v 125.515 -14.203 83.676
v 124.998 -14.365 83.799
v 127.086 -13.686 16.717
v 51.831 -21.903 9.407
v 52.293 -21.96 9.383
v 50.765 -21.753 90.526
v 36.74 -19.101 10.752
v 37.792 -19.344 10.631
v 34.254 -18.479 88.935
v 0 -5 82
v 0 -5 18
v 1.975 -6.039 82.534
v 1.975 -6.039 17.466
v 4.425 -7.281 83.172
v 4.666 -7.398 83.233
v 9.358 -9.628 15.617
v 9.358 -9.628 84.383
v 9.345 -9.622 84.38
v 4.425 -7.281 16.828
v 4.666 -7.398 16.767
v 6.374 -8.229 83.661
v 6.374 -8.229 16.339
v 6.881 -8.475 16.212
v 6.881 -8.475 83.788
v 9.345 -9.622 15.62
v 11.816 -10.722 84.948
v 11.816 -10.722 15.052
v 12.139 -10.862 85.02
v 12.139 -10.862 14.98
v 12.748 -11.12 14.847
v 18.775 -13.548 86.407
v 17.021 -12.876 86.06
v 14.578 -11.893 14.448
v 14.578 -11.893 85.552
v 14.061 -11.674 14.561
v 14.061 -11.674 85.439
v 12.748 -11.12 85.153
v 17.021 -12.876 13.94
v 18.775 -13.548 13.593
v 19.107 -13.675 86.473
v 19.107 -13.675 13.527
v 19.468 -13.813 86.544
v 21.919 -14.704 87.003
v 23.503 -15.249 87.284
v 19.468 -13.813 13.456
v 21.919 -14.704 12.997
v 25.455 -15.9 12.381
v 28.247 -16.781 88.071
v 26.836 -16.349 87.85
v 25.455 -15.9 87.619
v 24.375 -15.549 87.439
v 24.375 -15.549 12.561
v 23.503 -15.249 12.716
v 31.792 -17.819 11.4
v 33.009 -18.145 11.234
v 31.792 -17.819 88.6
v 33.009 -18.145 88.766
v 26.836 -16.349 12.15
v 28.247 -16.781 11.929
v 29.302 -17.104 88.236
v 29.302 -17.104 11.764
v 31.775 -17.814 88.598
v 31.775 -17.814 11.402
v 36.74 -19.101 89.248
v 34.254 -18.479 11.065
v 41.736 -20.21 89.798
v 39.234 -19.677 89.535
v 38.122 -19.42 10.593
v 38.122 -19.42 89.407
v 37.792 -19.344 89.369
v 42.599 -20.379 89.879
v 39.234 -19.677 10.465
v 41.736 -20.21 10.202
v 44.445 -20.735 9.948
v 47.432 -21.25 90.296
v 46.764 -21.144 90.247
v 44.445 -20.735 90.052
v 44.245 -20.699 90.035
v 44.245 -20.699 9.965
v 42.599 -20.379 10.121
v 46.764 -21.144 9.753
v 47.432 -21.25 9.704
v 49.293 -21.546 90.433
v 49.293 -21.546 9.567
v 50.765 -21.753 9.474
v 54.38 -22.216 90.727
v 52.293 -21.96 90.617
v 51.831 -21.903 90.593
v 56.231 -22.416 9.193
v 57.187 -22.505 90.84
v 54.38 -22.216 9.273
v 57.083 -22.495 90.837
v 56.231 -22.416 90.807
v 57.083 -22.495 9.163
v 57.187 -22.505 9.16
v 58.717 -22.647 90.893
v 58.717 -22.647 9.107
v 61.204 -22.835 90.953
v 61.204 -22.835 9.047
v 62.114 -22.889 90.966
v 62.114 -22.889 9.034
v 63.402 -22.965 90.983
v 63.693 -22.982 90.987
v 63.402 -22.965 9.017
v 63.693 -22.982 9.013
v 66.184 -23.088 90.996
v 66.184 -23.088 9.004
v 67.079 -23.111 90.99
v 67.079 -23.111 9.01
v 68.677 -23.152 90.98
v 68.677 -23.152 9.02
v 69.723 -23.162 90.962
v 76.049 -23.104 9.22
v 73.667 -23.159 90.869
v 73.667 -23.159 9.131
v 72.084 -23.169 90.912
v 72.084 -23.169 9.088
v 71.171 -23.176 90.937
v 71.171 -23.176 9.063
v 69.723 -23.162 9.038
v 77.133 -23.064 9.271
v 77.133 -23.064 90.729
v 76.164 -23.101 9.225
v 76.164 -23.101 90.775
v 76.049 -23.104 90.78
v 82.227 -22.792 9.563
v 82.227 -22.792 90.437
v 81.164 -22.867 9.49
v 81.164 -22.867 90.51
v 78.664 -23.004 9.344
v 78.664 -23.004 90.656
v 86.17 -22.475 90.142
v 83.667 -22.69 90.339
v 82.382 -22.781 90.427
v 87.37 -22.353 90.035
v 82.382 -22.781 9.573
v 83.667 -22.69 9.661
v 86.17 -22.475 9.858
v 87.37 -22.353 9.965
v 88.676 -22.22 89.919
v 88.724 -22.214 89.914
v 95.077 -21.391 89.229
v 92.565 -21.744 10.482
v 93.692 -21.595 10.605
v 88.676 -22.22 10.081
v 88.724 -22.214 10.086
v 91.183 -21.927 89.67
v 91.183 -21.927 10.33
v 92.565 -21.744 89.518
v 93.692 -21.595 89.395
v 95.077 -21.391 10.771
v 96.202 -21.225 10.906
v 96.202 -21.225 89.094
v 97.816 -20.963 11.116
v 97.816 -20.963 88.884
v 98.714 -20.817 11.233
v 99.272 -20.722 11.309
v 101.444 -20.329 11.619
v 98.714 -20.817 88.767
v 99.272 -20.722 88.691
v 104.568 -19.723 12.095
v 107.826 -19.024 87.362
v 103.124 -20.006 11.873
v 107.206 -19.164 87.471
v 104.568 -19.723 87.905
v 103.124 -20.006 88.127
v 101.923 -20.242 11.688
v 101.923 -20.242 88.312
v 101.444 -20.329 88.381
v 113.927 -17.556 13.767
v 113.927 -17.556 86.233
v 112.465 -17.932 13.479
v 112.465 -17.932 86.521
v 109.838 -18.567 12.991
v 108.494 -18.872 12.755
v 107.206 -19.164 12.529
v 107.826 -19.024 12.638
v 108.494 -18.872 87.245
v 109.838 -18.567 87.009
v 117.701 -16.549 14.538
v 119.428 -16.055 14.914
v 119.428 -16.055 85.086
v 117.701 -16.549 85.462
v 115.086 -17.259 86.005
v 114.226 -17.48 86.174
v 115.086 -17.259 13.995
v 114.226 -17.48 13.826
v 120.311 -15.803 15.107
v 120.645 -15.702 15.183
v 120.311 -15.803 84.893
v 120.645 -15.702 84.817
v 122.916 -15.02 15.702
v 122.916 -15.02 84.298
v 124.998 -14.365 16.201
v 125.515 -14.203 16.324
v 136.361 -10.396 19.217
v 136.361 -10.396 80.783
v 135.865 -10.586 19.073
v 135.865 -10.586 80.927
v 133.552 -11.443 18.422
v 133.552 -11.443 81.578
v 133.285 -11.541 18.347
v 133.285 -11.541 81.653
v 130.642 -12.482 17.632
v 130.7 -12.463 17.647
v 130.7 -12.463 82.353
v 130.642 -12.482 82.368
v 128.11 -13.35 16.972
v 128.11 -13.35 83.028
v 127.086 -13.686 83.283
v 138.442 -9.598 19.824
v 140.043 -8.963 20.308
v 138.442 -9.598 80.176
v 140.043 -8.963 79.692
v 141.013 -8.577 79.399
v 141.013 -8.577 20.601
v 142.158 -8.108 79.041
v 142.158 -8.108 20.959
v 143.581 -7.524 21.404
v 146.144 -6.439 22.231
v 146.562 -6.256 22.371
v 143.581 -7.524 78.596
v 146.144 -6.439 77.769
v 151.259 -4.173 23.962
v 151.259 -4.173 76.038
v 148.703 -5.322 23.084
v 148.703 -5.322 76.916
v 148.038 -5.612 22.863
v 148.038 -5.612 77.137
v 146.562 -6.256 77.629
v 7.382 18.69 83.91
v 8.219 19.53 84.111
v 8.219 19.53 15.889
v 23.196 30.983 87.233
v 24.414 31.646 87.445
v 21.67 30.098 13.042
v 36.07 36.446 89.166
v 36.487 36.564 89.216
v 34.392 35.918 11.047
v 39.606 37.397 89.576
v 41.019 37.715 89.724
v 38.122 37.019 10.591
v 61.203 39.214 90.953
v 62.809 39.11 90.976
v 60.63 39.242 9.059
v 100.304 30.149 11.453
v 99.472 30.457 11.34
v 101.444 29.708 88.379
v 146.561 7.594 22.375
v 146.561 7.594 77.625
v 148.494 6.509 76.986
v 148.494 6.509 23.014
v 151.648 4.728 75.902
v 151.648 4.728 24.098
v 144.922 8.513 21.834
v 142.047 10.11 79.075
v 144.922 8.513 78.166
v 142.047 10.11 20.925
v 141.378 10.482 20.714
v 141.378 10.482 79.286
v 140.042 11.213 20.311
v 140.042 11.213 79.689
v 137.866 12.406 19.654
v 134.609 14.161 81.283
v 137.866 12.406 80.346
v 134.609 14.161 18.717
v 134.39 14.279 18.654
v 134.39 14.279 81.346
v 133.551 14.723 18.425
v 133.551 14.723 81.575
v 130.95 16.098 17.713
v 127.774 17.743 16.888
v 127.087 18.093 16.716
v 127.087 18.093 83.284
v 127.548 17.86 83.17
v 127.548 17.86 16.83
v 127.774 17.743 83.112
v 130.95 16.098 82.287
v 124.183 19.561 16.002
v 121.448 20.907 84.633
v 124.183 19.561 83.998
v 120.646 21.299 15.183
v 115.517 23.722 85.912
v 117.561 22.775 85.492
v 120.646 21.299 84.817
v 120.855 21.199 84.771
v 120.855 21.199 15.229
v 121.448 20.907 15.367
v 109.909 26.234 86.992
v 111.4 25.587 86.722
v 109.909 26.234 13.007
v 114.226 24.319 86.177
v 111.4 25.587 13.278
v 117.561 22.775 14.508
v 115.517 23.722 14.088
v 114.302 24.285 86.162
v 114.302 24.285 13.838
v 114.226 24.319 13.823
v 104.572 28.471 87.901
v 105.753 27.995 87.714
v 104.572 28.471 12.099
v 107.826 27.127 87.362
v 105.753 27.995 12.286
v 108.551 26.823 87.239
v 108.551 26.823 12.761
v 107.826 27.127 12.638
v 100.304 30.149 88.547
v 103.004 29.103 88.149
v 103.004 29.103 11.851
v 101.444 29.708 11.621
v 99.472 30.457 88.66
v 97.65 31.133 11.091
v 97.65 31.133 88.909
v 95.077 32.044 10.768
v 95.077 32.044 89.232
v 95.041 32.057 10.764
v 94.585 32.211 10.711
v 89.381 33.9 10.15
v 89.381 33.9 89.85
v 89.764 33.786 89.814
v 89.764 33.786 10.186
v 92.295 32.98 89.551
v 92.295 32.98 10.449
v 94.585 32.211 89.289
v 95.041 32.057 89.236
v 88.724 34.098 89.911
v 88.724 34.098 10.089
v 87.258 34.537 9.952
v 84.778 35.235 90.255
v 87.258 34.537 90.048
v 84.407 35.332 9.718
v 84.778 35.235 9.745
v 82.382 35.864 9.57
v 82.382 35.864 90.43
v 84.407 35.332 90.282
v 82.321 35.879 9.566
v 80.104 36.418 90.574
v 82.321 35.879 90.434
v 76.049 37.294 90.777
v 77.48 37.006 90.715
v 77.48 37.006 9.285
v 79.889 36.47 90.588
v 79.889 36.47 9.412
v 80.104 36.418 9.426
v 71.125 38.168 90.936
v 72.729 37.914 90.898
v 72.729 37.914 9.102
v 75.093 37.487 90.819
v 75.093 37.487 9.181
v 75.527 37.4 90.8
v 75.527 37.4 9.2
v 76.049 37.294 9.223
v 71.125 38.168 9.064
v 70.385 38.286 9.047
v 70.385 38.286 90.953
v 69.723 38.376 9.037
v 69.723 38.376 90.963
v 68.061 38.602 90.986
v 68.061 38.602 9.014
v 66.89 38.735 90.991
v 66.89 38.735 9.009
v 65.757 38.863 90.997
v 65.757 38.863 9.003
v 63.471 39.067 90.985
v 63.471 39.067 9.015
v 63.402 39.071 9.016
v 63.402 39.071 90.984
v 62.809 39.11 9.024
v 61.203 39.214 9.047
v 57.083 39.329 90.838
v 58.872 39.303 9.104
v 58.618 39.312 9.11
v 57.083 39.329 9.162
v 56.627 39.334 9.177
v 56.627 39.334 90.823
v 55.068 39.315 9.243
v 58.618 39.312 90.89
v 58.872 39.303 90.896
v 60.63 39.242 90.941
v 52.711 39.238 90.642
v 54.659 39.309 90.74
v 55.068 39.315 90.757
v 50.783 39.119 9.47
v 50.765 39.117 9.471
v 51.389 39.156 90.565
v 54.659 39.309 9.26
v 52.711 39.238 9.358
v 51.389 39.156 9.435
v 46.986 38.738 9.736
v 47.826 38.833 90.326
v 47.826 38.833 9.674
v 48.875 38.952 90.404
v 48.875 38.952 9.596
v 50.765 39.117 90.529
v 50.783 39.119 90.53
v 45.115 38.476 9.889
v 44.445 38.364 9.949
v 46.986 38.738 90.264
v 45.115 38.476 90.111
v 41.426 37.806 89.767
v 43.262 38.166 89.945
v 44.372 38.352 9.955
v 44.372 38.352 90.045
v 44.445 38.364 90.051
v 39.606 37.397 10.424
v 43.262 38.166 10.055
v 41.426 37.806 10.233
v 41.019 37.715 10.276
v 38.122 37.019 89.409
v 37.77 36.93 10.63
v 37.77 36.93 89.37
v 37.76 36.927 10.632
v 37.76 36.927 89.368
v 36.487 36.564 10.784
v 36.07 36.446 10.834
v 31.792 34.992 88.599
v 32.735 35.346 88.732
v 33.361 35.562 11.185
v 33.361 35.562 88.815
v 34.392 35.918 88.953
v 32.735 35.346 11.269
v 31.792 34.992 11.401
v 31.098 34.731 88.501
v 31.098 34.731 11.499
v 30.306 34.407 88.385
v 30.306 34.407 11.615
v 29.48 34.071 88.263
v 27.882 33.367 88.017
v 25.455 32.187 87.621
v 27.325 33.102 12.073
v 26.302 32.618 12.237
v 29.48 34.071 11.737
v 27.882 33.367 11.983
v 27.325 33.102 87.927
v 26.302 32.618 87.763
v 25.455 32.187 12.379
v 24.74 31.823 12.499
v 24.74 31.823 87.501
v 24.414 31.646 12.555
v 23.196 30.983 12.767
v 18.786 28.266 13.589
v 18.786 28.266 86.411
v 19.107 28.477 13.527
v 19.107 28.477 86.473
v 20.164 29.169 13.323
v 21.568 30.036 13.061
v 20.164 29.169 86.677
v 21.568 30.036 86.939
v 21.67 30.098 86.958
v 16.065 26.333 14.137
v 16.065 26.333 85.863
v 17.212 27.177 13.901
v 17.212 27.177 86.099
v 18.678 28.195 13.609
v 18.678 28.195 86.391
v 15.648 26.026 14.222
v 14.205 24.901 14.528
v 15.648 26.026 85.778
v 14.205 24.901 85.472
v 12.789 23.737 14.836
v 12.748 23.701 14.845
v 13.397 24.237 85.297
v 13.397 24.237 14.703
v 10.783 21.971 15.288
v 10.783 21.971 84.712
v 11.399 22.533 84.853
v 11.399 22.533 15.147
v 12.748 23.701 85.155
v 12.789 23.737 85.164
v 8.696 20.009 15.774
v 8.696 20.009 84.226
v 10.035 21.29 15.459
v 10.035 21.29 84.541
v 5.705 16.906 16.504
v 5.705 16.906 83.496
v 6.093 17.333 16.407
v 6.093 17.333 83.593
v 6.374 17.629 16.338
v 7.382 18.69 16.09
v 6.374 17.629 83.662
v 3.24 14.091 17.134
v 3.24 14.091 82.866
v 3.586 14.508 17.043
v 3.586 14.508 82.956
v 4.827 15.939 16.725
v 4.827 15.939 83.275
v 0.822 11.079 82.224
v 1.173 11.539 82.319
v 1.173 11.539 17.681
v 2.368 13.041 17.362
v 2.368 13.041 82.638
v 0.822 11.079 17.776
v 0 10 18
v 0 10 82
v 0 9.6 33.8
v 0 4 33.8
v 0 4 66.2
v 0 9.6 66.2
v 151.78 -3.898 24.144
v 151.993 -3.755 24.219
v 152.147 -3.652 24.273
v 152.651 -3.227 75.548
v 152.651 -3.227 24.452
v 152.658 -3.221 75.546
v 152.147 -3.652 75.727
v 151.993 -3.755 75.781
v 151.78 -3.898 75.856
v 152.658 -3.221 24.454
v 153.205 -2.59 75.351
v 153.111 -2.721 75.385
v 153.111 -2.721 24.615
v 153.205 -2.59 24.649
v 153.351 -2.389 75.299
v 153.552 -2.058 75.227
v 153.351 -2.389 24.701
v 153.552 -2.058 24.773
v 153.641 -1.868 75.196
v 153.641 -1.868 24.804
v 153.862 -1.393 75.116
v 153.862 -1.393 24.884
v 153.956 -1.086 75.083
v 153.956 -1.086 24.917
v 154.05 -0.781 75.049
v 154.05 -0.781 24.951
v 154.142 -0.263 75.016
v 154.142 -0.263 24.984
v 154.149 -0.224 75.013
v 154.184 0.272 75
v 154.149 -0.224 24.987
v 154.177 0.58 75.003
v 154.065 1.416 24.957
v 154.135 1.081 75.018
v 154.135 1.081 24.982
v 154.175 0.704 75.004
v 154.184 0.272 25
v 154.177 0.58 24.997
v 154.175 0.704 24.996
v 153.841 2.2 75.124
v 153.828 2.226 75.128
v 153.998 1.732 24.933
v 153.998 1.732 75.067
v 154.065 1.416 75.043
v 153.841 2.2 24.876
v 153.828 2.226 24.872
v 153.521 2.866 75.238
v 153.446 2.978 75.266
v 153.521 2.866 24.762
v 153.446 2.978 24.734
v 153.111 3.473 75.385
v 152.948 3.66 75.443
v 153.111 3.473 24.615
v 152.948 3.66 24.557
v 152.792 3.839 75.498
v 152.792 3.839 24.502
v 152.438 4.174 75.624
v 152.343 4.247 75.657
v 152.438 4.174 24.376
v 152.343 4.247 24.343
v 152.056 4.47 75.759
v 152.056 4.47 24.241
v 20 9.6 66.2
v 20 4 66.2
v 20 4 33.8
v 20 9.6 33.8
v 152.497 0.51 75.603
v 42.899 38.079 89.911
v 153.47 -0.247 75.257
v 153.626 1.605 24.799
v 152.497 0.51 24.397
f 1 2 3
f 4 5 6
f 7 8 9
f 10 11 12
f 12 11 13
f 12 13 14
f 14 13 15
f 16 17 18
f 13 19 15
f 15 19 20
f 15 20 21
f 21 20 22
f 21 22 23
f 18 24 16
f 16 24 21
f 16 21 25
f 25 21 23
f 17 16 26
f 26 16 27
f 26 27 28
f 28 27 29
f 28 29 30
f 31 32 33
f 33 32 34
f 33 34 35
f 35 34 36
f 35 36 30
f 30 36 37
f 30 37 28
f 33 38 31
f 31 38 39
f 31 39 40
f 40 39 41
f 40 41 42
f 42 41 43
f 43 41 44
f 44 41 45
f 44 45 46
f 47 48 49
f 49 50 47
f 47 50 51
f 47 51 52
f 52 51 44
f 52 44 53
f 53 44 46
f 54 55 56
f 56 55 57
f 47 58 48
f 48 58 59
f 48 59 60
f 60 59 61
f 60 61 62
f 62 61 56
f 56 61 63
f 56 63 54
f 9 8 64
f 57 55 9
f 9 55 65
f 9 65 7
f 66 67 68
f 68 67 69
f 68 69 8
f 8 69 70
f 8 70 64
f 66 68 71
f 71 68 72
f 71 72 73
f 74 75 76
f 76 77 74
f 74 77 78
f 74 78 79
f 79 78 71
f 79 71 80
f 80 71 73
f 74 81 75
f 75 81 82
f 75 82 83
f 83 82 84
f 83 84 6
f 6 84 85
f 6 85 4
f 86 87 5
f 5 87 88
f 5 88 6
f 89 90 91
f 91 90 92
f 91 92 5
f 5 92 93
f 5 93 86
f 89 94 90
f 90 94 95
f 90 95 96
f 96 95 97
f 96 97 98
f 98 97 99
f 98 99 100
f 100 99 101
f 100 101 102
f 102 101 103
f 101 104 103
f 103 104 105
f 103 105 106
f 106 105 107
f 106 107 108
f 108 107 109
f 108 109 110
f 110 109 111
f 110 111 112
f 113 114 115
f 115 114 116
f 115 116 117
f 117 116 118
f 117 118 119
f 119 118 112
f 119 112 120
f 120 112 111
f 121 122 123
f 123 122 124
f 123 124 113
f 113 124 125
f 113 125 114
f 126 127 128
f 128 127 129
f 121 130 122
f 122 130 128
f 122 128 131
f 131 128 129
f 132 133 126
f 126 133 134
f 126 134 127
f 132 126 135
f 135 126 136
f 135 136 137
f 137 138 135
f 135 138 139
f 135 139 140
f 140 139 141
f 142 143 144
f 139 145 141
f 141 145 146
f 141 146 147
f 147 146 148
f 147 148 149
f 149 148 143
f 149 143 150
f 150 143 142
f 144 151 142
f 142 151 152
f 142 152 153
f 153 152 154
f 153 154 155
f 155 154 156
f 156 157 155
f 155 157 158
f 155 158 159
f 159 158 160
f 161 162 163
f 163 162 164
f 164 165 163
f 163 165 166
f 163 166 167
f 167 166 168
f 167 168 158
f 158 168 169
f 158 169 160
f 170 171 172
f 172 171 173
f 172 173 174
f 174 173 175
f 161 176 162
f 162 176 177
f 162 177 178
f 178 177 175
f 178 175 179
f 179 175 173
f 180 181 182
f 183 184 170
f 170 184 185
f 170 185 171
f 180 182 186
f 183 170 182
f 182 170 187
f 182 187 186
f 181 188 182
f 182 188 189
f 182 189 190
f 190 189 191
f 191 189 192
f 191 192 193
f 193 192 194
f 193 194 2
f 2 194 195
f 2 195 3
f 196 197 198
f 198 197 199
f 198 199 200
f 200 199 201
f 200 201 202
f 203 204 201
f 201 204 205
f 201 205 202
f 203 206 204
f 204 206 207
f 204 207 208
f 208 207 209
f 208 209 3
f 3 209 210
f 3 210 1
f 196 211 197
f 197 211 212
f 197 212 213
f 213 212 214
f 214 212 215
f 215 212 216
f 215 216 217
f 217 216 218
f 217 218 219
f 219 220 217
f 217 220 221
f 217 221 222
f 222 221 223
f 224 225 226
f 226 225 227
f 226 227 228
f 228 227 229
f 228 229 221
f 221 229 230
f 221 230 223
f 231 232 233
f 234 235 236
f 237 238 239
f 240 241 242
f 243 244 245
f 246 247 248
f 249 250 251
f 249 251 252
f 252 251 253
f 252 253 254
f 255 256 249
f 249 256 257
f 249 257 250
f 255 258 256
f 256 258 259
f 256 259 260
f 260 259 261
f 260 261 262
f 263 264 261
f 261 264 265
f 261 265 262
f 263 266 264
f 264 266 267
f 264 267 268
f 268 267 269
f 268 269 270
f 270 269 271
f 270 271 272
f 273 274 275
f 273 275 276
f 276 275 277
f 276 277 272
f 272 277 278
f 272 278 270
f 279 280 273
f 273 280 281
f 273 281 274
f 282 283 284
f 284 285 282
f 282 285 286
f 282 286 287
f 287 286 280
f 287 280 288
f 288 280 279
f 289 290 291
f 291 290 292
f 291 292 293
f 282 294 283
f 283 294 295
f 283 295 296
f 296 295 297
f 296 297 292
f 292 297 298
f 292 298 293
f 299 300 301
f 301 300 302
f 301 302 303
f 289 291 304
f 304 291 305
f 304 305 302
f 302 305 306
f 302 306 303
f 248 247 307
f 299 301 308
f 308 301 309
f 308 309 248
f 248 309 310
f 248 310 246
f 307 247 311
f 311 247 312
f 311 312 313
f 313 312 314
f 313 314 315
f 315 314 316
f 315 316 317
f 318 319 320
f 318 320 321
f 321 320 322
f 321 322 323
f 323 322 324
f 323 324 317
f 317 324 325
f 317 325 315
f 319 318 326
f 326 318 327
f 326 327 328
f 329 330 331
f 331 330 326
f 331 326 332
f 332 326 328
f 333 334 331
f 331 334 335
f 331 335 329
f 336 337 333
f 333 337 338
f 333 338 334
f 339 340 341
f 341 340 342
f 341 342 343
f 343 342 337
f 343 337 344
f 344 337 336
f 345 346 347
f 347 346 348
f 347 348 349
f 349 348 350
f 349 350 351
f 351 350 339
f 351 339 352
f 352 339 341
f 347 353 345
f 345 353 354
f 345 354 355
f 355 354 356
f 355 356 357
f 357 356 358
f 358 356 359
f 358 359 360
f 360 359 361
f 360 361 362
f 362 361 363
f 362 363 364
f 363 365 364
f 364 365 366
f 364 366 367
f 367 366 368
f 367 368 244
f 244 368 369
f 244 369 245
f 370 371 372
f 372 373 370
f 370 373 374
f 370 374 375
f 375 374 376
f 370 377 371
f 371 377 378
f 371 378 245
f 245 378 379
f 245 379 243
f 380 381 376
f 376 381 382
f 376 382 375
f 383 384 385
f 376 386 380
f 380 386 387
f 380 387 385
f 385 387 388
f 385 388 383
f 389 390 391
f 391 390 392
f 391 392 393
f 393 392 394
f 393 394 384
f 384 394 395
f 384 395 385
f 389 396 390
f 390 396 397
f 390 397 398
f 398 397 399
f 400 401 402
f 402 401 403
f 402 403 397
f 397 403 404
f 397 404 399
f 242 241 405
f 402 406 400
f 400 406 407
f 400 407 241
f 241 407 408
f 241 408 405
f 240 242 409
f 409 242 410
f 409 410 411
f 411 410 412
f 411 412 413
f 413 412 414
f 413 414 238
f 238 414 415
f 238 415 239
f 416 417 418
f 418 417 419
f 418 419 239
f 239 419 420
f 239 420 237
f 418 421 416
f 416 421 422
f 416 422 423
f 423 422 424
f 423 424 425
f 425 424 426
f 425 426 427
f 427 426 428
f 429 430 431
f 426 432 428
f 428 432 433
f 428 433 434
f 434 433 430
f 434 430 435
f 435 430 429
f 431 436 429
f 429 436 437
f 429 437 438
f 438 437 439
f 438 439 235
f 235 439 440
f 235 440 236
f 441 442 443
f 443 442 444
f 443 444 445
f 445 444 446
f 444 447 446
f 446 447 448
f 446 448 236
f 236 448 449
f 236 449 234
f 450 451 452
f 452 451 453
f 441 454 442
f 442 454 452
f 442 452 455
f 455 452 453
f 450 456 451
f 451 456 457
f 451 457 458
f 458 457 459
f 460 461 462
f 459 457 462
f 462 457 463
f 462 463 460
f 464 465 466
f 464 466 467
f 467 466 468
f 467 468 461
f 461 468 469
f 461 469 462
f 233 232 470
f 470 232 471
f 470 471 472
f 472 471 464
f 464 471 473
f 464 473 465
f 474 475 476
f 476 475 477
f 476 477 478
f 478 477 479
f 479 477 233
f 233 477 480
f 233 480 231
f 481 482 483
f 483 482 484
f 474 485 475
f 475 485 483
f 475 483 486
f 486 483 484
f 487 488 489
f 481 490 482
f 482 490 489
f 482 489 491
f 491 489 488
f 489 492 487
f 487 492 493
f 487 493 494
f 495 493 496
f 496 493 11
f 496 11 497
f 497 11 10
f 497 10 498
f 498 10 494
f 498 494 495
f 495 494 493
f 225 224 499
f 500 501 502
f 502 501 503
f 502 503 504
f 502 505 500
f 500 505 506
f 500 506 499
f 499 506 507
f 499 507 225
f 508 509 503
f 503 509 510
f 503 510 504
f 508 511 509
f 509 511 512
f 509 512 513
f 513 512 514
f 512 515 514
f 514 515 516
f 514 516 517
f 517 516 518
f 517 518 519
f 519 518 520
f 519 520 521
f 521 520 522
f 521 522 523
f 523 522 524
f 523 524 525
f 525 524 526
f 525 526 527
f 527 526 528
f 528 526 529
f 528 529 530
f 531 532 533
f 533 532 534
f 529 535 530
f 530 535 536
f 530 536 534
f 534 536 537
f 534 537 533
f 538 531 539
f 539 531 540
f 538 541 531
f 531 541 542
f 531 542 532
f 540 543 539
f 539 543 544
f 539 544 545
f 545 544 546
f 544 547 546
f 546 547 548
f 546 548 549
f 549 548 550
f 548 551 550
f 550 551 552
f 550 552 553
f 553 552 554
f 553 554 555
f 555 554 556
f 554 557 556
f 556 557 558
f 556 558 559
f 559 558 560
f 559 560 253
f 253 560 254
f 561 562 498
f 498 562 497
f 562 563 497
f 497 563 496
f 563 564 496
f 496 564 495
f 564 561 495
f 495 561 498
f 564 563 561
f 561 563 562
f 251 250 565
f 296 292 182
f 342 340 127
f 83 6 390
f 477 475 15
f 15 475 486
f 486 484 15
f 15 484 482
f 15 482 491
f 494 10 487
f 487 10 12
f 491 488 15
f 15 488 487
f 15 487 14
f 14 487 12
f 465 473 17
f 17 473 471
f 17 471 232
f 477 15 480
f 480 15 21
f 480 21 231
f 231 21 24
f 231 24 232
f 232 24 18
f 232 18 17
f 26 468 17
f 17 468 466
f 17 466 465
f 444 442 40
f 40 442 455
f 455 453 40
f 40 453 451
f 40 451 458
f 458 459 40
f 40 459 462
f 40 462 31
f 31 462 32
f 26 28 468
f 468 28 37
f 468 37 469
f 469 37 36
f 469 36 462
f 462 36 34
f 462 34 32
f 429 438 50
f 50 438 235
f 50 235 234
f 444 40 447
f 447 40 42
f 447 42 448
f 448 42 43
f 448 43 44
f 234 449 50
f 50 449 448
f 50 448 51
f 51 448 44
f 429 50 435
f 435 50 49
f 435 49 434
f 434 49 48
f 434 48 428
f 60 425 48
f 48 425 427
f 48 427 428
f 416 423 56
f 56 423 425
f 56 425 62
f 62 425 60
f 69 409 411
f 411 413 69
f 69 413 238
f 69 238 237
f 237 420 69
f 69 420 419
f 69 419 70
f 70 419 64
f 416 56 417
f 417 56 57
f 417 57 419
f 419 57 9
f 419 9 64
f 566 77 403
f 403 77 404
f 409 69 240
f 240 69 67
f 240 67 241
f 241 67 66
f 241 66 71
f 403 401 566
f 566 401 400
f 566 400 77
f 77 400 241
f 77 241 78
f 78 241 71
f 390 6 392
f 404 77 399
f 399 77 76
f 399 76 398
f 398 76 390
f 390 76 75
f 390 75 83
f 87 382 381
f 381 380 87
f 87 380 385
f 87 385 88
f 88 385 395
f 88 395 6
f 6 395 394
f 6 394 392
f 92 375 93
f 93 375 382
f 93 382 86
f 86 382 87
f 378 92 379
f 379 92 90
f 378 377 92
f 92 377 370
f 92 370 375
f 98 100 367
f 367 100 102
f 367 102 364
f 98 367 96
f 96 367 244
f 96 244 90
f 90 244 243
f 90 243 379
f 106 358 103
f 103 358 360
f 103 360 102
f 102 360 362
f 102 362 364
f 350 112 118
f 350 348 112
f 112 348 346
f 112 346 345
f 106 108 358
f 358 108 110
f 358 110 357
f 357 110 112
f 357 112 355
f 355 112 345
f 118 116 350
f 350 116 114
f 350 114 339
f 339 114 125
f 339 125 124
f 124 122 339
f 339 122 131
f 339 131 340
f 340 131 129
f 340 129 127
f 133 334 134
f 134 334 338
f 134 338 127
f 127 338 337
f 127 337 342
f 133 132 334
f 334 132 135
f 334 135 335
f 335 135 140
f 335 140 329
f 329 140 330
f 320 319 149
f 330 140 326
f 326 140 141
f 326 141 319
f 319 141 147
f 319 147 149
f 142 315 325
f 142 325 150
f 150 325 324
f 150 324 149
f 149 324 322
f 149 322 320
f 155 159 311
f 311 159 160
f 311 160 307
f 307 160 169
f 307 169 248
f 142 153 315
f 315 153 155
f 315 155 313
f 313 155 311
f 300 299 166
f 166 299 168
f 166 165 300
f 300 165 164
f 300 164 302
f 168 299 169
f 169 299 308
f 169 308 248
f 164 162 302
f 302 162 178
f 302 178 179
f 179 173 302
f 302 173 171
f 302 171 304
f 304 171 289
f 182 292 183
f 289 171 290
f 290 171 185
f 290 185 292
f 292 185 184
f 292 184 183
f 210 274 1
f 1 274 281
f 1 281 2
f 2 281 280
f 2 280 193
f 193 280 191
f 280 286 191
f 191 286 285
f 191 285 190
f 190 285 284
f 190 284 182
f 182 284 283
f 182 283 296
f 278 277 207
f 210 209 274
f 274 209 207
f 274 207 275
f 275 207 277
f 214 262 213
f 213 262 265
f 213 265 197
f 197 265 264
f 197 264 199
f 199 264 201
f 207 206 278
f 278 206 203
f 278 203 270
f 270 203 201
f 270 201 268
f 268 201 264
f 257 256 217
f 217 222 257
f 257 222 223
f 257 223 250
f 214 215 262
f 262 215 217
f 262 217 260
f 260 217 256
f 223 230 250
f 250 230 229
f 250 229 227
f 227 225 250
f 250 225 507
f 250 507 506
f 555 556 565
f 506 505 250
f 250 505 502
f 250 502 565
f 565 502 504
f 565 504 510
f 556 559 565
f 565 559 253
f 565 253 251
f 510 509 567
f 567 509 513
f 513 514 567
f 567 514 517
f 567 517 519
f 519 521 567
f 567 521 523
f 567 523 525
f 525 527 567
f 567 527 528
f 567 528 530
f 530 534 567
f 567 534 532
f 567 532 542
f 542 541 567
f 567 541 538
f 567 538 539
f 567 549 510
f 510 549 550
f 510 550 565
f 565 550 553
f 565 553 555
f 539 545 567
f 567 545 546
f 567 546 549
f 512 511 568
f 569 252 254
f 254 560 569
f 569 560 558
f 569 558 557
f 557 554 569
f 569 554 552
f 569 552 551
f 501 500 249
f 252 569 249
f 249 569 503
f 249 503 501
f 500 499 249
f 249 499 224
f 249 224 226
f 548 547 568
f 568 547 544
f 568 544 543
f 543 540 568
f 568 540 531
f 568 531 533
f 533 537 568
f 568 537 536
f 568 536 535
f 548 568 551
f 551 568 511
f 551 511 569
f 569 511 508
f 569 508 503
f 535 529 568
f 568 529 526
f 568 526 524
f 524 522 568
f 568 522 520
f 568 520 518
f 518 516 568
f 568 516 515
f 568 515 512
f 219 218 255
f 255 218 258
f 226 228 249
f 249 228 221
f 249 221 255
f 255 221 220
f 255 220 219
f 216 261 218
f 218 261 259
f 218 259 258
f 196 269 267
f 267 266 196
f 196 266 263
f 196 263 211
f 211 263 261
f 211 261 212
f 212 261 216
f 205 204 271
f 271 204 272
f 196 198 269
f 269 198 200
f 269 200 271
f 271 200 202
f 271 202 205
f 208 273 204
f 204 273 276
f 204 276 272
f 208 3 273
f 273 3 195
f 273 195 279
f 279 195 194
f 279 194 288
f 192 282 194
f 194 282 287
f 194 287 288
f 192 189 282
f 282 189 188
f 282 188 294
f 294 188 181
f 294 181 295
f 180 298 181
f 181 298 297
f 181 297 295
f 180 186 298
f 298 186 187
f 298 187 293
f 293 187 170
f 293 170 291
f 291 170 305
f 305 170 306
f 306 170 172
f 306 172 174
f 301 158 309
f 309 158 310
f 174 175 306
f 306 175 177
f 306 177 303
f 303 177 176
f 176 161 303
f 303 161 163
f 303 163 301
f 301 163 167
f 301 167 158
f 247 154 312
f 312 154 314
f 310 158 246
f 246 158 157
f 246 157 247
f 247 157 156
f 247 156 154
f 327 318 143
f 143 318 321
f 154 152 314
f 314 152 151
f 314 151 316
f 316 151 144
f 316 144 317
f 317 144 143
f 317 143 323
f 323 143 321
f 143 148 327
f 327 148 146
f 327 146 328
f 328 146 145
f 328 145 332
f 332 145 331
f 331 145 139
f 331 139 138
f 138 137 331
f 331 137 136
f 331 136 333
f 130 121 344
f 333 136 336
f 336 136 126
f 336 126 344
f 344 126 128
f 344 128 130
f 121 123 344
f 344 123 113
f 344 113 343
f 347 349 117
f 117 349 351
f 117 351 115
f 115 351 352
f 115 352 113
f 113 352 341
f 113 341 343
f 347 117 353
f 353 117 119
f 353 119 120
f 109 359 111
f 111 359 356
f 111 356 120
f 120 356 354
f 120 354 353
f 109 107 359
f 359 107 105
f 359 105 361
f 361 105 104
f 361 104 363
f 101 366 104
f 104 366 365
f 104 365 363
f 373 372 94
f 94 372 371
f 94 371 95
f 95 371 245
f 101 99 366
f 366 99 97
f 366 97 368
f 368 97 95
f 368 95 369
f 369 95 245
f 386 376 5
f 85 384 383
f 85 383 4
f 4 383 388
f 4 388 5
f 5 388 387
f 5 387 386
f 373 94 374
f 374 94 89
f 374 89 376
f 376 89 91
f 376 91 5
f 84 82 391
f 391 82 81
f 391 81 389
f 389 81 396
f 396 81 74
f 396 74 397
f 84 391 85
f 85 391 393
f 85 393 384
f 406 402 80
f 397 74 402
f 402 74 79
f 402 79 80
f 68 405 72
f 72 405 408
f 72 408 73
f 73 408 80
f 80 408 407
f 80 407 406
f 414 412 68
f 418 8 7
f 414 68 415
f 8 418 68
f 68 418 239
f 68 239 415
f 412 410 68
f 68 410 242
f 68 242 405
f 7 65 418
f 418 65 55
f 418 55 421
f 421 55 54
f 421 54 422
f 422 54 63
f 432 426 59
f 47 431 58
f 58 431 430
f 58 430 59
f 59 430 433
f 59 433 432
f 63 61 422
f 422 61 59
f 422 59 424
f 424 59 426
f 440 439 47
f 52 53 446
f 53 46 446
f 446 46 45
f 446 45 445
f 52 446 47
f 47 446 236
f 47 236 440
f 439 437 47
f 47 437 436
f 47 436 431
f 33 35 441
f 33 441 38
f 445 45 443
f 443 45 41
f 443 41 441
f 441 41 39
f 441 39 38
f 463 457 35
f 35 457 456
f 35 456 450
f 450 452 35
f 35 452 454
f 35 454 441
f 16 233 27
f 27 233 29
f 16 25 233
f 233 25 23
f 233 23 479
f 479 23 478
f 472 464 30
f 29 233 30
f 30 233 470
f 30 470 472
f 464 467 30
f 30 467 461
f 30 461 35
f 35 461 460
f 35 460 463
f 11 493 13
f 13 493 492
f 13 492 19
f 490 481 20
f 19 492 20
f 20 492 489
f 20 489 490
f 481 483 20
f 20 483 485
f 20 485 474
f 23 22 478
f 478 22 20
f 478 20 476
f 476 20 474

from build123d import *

# Parameters (mm, degrees)
BOSS_EXTRUDE1_DEPTH = 100
SKETCH2_W           = 32.4
SKETCH2_H           = 5.6
CUT_EXTRUDE1_DEPTH  = 20
FILLET2_R           = 5
CUT_EXTRUDE2_START  = -24
CUT_EXTRUDE2_DEPTH  = 64


with BuildPart() as part:
    # Sketch1 → Boss-Extrude1 (new body)
    with BuildSketch(Plane.XY):
        with BuildLine():
            Line((0, 5), (0, 10))
            add(Edge.make_bspline(
                [(0, 10), (44.096776055, 69.093814751), (116.180495262, 24.691377763), (160, 0)],
                knots=[0, 0, 0, 0, 1, 1, 1, 1], degree=3))
            add(Edge.make_bspline(
                [(0, -5), (72.416253581, -43.699775916), (160, 0)],
                knots=[0, 0, 0, 1, 1, 1], degree=2))
            Line((0, -5), (0, 0))
            Line((0, 0), (0, 5))
        make_face()
    extrude(amount=BOSS_EXTRUDE1_DEPTH)

    # Sketch2 → Cut-Extrude1 (cut)
    with BuildSketch(Plane.ZY):
        with Locations((50, 6.8)):
            Rectangle(SKETCH2_W, SKETCH2_H)
    extrude(amount=-CUT_EXTRUDE1_DEPTH, mode=Mode.SUBTRACT)

    # Fillet2
    fillet2_edges = [part.edges().sort_by_distance(p)[0] for p in [
        (160, 0, 50),
    ]]
    fillet(fillet2_edges, radius=FILLET2_R)

    # Cut-Extrude2: read off the stored shape, not the designer's step
    # Cut-Extrude2 outline → Cut-Extrude2 (cut)
    with BuildSketch(Plane(origin=(0, 0, 0), x_dir=(1, 0, 0), z_dir=(0, 1, 0)).offset(CUT_EXTRUDE2_START)):
        with BuildLine():
            add(Edge.make_bspline(
                [(0, -82), (76.537787844, -102.993151092), (154.18522925, -75)],
                knots=[0, 0, 0, 1, 1, 1], degree=2))
            Line((0, -82), (0, -100))
            Line((0, -100), (154.18522925, -100))
            Line((154.18522925, -100), (154.18522925, -75))
        make_face()
        with BuildLine():
            Line((154.185229284, 0), (0, 0))
            Line((0, 0), (0, -18))
            add(Edge.make_bspline(
                [(0, -18), (76.537787844, 2.993151092), (154.18522925, -25)],
                knots=[0, 0, 0, 1, 1, 1], degree=2))
            Line((154.18522925, -25), (154.185229284, 0))
        make_face()
    extrude(amount=CUT_EXTRUDE2_DEPTH, mode=Mode.SUBTRACT)


solid = part.part
